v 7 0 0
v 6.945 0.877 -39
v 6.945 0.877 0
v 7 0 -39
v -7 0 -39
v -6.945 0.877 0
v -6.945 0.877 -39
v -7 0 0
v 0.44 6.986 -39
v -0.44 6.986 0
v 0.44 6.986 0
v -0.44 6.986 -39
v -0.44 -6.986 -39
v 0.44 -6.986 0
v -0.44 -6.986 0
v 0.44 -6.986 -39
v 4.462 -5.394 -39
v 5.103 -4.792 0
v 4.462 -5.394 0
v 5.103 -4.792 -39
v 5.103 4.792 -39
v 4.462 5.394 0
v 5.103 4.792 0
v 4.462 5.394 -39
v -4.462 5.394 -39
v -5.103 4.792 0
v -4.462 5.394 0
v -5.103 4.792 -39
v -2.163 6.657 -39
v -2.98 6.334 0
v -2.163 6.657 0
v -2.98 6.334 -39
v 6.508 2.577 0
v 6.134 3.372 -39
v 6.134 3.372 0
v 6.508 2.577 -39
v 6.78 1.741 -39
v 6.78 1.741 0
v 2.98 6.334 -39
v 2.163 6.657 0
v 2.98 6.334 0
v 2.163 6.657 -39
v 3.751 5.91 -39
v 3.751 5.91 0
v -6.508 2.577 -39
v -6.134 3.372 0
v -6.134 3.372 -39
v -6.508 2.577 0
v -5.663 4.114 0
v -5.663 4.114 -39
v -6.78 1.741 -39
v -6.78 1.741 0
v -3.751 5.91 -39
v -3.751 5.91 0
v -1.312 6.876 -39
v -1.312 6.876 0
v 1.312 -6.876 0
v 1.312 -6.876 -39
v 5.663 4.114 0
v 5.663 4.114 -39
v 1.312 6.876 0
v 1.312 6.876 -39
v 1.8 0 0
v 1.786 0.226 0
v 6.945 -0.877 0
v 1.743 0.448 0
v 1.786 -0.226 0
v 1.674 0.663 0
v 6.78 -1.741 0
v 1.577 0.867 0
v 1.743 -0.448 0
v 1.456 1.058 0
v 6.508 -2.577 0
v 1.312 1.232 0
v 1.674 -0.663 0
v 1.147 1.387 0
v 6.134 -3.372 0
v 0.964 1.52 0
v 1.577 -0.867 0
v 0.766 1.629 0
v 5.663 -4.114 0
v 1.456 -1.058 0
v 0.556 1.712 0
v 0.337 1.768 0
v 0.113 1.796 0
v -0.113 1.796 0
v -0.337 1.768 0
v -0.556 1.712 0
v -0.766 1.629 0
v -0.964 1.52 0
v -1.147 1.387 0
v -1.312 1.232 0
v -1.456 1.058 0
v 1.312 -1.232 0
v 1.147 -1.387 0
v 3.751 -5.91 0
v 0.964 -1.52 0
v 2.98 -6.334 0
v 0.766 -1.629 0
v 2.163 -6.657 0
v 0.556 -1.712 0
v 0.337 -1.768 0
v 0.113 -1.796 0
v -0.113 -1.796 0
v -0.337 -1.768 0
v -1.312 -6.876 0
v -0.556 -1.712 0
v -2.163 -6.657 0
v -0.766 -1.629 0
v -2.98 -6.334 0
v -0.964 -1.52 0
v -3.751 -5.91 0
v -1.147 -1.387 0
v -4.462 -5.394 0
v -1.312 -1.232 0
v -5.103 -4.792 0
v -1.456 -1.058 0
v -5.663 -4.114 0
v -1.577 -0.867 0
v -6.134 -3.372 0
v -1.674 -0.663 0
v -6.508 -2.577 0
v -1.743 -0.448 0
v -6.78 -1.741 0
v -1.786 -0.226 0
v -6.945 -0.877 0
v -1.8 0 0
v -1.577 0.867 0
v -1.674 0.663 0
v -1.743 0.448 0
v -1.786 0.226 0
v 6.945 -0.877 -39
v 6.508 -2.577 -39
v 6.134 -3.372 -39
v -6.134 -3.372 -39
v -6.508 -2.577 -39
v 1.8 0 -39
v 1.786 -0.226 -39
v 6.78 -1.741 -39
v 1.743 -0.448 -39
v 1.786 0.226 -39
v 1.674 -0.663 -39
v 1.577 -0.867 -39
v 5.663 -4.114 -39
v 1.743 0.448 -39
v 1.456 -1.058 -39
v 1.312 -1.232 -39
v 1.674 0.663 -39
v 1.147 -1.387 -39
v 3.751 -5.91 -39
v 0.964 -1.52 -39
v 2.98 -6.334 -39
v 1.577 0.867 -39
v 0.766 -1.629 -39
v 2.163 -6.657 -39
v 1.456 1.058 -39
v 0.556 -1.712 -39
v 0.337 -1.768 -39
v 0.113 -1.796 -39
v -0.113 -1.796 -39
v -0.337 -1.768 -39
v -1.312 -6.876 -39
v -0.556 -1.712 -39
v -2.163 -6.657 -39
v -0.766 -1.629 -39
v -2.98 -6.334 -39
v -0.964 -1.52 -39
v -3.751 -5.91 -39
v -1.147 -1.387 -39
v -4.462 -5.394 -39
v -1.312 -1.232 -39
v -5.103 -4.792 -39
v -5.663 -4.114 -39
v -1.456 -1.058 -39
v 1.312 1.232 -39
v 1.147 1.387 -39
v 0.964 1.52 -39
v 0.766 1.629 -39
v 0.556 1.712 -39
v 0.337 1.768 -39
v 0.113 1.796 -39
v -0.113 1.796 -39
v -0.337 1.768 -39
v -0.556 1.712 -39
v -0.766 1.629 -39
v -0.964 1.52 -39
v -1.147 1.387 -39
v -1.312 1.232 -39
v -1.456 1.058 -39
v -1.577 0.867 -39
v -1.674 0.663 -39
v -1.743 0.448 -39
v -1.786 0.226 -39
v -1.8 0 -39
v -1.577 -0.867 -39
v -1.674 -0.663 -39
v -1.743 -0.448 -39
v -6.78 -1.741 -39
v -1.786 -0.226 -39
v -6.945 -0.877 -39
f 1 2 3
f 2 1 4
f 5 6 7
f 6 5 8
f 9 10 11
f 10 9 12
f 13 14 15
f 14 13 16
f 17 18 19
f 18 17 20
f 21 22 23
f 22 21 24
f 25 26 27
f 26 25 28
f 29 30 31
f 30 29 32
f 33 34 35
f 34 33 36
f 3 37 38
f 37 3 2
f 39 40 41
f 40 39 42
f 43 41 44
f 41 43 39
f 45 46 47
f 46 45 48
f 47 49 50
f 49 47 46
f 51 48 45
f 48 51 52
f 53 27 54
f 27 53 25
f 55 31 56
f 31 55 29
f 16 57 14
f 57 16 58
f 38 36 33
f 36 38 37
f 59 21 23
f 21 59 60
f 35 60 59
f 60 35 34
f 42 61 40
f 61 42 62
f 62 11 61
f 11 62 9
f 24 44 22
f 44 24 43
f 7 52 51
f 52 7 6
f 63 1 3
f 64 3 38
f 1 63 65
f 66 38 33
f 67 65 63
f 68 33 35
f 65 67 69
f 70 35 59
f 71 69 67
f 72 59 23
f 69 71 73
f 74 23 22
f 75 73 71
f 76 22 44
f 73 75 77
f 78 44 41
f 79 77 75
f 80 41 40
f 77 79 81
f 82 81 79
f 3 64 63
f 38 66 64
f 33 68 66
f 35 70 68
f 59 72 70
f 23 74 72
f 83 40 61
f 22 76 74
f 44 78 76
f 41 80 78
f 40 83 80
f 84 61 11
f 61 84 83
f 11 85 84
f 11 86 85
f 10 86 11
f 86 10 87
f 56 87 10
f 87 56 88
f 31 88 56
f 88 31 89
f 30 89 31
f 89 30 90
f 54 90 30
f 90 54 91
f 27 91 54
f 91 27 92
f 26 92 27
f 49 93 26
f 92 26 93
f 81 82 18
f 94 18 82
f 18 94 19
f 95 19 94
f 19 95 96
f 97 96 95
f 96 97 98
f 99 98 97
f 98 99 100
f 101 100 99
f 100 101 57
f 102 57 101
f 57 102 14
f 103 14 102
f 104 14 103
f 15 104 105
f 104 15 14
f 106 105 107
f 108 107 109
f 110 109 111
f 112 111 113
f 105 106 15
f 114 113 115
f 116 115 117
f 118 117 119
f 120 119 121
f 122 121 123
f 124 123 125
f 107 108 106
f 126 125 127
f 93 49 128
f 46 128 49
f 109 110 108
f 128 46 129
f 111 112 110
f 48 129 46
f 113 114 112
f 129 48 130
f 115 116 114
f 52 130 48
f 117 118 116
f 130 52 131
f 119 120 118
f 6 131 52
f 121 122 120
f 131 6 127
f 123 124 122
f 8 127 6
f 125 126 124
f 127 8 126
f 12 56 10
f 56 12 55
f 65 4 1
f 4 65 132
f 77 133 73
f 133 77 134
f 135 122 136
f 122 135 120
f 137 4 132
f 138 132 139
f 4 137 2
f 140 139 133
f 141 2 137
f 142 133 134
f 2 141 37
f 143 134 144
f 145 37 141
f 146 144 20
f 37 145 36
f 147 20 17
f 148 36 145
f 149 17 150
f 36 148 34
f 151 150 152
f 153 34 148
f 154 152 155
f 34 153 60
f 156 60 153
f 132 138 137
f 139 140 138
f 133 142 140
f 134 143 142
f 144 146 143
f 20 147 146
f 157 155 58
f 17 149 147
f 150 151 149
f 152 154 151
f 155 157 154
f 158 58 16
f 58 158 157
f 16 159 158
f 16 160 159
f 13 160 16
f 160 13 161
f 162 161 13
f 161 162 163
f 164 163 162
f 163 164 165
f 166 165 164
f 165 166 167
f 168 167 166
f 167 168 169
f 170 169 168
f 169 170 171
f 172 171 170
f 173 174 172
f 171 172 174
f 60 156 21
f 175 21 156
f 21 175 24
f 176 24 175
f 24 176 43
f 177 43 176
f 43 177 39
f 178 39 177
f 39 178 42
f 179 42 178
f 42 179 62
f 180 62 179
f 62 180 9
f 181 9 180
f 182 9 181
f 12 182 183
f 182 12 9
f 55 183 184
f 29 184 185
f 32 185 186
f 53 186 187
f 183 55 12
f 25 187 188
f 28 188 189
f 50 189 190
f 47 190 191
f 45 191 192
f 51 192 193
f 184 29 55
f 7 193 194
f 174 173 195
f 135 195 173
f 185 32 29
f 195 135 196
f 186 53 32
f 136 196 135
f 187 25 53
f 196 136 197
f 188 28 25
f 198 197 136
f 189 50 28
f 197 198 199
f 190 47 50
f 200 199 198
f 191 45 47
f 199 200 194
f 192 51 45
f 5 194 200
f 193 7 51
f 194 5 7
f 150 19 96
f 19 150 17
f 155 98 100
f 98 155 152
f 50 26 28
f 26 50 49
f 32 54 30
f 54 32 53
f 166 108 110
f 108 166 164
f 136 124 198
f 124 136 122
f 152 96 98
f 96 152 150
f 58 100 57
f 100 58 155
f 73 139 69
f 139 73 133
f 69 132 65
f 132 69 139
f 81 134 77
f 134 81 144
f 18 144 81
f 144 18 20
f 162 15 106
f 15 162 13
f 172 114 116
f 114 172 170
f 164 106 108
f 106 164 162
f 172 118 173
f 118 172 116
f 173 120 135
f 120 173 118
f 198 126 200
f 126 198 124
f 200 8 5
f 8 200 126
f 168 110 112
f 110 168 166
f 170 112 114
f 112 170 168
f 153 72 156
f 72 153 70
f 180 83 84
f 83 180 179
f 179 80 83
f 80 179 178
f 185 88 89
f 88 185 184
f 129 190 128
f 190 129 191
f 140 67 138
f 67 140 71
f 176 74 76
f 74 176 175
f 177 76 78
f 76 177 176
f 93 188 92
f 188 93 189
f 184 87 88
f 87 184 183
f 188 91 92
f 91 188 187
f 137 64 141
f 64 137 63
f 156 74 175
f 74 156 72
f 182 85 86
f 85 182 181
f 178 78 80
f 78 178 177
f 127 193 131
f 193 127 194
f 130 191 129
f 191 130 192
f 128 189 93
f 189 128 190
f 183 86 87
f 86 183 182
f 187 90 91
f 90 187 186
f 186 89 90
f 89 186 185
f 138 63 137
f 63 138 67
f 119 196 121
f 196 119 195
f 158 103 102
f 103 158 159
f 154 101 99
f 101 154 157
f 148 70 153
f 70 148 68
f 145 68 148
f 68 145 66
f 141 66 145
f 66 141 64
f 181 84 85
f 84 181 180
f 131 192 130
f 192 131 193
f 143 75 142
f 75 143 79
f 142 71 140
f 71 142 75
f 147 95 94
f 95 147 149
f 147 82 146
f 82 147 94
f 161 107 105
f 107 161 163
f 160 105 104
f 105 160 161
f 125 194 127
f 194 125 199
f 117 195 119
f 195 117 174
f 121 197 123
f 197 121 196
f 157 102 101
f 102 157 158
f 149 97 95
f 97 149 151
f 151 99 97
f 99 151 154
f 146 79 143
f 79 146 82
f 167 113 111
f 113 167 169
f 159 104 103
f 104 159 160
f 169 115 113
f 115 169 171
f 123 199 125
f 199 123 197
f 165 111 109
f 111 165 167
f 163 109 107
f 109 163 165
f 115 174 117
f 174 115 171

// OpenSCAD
$fn = 50;


difference() {
	union() {
		translate(v = [0, 0, -39.0000000000]) {
			cylinder(h = 39, r = 7.0000000000);
		}
		cylinder(h = 0, r = 16.0000000000);
	}
	union() {
		#translate(v = [0, 0, -39]) {
			cylinder(h = 39, r = 1.8000000000);
		}
	}
}
